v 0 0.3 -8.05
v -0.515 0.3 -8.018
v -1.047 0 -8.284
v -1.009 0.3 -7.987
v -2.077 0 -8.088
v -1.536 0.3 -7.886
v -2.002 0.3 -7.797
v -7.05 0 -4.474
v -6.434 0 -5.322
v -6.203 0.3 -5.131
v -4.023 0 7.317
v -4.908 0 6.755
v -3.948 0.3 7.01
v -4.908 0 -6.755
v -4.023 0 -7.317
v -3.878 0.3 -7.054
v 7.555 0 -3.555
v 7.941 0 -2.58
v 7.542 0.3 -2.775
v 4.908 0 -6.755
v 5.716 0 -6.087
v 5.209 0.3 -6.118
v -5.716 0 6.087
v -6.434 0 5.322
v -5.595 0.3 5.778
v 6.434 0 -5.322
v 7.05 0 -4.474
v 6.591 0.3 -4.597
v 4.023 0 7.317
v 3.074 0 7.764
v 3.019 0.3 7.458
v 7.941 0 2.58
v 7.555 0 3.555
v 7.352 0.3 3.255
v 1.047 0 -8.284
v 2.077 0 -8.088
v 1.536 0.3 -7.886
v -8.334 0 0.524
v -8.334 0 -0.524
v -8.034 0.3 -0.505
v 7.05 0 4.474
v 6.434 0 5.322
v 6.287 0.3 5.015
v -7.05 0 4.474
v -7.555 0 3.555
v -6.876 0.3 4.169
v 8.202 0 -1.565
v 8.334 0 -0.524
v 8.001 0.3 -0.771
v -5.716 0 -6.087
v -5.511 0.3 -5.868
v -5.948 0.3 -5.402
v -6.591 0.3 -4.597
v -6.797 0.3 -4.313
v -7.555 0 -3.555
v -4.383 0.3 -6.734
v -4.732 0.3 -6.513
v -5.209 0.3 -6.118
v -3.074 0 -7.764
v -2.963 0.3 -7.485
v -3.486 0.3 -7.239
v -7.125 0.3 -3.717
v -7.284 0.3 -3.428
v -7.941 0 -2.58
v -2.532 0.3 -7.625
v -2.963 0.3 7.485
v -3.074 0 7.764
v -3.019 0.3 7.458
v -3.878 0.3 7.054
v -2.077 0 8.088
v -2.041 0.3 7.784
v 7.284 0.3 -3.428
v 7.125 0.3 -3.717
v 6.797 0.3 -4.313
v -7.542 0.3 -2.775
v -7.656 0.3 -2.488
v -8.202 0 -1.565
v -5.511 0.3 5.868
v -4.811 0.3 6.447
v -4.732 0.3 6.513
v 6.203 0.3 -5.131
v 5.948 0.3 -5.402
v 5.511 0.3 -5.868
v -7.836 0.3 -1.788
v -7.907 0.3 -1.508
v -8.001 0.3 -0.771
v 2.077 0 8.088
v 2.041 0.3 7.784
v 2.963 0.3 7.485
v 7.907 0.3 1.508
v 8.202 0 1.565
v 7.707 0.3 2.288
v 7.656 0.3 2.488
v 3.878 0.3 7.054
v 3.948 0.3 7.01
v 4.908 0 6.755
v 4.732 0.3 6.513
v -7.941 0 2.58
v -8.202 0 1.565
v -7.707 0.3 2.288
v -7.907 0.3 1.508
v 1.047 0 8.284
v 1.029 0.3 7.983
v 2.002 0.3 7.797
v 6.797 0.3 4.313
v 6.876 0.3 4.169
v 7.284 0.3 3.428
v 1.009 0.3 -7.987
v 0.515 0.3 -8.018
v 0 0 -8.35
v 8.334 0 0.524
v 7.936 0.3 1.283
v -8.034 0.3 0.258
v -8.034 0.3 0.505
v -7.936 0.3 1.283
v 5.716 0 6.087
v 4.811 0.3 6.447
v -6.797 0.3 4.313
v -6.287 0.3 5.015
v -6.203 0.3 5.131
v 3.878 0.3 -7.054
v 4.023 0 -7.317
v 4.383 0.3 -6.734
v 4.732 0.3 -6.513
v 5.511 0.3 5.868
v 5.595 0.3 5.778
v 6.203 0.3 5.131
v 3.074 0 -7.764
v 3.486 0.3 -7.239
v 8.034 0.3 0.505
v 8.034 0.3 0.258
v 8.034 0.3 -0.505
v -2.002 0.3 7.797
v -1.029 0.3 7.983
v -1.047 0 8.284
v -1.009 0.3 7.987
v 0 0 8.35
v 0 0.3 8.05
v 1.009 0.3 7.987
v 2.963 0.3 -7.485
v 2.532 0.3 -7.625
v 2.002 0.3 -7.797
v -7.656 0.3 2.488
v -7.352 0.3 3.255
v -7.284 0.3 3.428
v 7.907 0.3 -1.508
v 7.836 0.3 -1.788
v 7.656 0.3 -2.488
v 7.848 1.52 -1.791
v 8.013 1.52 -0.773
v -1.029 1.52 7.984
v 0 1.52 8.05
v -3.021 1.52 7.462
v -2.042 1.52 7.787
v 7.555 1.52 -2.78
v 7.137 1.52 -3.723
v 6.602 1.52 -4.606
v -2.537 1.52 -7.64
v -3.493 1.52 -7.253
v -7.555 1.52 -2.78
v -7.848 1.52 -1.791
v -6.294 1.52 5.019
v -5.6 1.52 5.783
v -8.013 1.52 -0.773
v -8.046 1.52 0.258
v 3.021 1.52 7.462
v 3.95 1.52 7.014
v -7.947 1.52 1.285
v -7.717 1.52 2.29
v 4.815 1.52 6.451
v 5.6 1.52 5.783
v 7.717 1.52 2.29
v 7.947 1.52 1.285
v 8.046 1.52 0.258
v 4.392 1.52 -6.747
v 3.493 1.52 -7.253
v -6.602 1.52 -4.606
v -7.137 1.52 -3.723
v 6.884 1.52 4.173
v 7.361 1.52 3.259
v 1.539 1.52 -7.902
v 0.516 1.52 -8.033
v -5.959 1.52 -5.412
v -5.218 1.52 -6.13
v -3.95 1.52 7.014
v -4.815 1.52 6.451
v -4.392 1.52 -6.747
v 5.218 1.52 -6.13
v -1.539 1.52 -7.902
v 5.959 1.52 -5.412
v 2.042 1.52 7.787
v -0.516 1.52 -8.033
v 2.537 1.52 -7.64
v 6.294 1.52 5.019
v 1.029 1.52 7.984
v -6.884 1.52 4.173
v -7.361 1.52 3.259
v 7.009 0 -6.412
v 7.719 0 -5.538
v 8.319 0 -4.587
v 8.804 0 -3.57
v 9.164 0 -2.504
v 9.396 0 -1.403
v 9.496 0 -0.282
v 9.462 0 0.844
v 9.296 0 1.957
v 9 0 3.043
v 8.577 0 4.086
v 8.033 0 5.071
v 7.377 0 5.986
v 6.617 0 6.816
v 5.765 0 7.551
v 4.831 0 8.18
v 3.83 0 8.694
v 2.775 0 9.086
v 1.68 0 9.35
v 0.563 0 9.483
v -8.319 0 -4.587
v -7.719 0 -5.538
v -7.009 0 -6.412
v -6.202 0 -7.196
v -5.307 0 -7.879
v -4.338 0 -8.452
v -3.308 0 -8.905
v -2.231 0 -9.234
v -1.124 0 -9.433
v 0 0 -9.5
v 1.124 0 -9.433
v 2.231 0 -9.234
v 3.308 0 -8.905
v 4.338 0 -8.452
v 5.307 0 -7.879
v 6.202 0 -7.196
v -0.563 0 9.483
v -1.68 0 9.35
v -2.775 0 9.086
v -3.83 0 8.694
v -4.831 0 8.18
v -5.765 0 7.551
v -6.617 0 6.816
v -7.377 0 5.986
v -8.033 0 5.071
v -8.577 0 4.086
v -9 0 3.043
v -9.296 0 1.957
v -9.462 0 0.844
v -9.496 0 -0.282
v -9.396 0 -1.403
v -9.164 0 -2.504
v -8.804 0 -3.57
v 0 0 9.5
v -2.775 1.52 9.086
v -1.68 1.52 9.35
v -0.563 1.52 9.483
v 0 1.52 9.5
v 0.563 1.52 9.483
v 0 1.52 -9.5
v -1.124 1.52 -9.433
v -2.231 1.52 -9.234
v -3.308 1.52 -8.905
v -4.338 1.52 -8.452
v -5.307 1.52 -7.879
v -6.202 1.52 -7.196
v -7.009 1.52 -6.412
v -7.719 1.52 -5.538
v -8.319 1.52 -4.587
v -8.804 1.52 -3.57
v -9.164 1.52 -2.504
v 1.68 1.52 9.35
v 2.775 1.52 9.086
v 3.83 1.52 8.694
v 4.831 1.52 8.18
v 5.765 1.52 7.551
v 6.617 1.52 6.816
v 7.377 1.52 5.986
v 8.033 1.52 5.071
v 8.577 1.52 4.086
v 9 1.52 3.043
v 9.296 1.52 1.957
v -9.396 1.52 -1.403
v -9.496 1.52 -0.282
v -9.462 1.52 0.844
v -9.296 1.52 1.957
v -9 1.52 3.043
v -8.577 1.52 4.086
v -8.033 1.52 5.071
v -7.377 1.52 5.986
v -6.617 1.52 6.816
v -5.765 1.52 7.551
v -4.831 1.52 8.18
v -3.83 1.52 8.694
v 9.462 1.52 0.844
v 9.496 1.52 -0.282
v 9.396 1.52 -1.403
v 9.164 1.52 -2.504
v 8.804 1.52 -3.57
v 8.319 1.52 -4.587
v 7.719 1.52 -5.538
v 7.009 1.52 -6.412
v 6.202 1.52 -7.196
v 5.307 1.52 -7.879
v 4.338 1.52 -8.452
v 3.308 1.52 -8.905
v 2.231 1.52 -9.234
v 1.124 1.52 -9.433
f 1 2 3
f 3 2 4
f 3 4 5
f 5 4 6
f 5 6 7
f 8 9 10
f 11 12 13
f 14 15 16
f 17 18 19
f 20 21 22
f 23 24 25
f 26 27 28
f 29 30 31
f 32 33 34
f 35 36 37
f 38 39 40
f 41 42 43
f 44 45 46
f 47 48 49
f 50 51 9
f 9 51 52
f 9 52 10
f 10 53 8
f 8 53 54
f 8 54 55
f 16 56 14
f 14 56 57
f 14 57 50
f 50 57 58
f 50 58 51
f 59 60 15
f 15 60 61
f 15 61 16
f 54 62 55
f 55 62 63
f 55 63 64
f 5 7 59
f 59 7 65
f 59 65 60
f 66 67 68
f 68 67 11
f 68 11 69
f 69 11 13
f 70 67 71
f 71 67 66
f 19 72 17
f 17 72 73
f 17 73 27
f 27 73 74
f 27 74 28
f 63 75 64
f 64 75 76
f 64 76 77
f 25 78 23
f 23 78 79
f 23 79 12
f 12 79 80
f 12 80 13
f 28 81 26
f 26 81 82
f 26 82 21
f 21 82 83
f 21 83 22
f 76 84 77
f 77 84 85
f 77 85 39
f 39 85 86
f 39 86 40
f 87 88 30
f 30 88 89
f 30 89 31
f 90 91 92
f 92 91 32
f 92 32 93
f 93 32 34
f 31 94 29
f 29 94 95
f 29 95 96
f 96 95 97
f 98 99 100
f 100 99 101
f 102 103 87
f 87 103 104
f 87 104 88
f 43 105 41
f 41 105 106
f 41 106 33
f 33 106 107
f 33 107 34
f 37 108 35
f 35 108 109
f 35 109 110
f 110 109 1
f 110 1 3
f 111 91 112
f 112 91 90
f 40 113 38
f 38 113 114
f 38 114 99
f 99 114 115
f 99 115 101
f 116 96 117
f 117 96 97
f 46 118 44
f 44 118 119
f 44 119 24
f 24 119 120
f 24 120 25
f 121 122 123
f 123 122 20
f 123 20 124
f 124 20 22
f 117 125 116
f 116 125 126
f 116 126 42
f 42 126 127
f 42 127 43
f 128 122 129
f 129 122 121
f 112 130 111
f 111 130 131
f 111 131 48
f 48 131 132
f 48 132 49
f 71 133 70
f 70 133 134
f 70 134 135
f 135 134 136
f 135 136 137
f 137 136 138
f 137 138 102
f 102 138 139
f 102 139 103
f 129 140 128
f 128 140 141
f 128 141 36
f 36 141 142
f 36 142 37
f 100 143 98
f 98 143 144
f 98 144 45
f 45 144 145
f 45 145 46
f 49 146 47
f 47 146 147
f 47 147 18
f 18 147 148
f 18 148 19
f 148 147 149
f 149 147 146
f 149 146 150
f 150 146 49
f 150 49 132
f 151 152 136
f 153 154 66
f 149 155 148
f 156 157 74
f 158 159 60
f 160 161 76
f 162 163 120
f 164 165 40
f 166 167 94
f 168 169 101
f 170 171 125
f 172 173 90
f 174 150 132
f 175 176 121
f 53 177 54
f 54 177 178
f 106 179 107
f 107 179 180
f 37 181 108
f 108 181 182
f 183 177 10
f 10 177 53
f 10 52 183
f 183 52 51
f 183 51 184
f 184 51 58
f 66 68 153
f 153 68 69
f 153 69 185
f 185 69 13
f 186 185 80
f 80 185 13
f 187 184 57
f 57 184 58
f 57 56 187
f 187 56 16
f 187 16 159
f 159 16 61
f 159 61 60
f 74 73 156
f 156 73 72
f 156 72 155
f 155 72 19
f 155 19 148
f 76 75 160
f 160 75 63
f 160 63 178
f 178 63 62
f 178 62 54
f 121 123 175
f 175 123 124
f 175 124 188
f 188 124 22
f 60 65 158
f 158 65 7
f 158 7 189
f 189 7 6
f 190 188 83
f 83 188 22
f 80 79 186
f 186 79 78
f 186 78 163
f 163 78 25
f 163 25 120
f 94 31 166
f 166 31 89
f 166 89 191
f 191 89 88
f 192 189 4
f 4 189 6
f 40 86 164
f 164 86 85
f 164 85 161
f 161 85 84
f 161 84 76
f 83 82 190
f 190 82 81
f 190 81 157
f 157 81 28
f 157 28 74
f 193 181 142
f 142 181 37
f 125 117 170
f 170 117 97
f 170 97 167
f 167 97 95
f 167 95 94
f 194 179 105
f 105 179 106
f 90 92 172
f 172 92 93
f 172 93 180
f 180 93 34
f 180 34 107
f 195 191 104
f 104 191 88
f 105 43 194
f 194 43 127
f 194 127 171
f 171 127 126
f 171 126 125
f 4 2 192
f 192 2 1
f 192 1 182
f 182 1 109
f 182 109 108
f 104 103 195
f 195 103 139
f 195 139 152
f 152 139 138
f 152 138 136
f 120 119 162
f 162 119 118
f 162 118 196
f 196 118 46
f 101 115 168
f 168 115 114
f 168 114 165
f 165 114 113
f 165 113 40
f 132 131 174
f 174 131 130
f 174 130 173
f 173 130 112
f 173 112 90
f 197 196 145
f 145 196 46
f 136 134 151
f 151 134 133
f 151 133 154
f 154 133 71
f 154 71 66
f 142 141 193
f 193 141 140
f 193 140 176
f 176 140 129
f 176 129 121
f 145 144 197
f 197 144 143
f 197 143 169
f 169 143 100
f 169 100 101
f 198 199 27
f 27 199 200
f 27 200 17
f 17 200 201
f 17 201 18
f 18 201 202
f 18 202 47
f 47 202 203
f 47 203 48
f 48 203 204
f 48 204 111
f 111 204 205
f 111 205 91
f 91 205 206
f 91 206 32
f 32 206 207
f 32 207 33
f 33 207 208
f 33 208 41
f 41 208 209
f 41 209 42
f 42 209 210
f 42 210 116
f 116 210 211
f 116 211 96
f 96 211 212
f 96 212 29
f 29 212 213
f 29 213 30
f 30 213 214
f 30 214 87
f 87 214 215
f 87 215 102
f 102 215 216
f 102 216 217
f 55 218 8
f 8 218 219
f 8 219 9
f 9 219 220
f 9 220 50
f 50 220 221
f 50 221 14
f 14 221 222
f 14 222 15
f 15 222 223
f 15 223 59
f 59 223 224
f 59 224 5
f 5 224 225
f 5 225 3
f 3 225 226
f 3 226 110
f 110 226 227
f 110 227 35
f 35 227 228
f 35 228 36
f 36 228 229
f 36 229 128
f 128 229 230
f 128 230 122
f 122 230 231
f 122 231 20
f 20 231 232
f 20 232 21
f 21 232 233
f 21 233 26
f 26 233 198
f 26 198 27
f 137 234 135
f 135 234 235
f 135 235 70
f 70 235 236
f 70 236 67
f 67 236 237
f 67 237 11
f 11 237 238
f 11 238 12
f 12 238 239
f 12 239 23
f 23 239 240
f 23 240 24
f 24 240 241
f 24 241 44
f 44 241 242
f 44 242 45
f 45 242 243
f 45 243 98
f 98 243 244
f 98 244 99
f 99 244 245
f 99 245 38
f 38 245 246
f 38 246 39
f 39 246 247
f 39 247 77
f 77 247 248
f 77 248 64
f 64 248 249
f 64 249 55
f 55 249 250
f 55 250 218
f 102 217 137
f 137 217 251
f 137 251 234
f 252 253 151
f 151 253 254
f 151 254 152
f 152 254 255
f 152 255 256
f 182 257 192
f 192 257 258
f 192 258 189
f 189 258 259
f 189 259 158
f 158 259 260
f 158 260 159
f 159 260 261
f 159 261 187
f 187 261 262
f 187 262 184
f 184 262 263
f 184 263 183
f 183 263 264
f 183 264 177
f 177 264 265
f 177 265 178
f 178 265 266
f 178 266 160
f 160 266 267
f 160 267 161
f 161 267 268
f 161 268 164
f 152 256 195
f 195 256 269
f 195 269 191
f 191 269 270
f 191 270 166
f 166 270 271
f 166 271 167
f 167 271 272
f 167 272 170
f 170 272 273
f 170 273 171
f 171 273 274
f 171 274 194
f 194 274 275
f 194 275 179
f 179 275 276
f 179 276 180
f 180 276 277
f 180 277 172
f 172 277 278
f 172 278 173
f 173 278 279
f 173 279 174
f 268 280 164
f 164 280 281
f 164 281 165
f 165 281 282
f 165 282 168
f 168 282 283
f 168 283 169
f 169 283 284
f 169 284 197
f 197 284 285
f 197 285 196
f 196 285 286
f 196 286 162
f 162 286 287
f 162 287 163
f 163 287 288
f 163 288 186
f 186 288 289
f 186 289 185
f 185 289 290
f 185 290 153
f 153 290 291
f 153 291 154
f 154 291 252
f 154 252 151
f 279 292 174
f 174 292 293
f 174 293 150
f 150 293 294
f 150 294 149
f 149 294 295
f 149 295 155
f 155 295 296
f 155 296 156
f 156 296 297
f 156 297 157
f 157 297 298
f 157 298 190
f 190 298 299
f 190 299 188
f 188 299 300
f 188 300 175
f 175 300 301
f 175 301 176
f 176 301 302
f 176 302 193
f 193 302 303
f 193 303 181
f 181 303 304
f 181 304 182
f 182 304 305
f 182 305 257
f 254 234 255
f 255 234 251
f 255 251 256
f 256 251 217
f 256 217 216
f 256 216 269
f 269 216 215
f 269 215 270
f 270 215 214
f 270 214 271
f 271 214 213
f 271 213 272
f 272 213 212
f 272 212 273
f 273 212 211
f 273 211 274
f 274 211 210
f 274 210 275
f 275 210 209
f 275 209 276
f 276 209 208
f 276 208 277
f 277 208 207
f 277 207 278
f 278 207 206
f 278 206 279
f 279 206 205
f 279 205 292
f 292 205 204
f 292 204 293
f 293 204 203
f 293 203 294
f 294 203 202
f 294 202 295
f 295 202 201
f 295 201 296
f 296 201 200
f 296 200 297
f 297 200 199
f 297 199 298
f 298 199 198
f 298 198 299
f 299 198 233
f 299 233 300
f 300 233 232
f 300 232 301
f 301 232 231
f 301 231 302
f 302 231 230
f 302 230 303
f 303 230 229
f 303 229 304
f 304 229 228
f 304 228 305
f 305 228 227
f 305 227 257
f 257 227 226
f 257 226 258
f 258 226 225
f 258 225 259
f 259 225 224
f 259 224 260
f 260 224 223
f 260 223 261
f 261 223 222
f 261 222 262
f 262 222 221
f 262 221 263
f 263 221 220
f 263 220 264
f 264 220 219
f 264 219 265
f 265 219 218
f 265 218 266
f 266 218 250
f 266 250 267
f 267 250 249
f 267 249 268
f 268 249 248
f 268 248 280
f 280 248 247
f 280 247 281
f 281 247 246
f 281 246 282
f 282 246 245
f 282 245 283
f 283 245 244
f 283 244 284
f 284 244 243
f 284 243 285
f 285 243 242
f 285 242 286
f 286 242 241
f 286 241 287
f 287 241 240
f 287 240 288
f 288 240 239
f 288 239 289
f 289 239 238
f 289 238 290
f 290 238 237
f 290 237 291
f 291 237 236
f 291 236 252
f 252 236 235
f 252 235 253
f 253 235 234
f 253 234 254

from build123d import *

# Parameters (mm, degrees)
SKETCH1_R           = 9.5
BOSS_EXTRUDE1_DEPTH = 1.52
SKETCH2_R           = 8.05
CUT_EXTRUDE1_DEPTH  = 2.52
CHAMFER1_SIZE       = 0.3


with BuildPart() as part:
    # Sketch1 → Boss-Extrude1 (new body)
    with BuildSketch(Plane(origin=(0, 0, 0), x_dir=(1, 0, 0), z_dir=(0, 1, 0))):
        Circle(SKETCH1_R)
    extrude(amount=BOSS_EXTRUDE1_DEPTH)

    # Sketch2 → Cut-Extrude1 (cut, through all)
    with BuildSketch(Plane(origin=(0, 1.52, 0), x_dir=(1, 0, 0), z_dir=(0, 1, 0))):
        Circle(SKETCH2_R)
    extrude(amount=-CUT_EXTRUDE1_DEPTH, mode=Mode.SUBTRACT)

    # Chamfer1
    chamfer1_edges = [part.edges().sort_by_distance(p)[0] for p in [
        (-8.05, 0, 0),
    ]]
    chamfer(chamfer1_edges, length=CHAMFER1_SIZE)


solid = part.part
